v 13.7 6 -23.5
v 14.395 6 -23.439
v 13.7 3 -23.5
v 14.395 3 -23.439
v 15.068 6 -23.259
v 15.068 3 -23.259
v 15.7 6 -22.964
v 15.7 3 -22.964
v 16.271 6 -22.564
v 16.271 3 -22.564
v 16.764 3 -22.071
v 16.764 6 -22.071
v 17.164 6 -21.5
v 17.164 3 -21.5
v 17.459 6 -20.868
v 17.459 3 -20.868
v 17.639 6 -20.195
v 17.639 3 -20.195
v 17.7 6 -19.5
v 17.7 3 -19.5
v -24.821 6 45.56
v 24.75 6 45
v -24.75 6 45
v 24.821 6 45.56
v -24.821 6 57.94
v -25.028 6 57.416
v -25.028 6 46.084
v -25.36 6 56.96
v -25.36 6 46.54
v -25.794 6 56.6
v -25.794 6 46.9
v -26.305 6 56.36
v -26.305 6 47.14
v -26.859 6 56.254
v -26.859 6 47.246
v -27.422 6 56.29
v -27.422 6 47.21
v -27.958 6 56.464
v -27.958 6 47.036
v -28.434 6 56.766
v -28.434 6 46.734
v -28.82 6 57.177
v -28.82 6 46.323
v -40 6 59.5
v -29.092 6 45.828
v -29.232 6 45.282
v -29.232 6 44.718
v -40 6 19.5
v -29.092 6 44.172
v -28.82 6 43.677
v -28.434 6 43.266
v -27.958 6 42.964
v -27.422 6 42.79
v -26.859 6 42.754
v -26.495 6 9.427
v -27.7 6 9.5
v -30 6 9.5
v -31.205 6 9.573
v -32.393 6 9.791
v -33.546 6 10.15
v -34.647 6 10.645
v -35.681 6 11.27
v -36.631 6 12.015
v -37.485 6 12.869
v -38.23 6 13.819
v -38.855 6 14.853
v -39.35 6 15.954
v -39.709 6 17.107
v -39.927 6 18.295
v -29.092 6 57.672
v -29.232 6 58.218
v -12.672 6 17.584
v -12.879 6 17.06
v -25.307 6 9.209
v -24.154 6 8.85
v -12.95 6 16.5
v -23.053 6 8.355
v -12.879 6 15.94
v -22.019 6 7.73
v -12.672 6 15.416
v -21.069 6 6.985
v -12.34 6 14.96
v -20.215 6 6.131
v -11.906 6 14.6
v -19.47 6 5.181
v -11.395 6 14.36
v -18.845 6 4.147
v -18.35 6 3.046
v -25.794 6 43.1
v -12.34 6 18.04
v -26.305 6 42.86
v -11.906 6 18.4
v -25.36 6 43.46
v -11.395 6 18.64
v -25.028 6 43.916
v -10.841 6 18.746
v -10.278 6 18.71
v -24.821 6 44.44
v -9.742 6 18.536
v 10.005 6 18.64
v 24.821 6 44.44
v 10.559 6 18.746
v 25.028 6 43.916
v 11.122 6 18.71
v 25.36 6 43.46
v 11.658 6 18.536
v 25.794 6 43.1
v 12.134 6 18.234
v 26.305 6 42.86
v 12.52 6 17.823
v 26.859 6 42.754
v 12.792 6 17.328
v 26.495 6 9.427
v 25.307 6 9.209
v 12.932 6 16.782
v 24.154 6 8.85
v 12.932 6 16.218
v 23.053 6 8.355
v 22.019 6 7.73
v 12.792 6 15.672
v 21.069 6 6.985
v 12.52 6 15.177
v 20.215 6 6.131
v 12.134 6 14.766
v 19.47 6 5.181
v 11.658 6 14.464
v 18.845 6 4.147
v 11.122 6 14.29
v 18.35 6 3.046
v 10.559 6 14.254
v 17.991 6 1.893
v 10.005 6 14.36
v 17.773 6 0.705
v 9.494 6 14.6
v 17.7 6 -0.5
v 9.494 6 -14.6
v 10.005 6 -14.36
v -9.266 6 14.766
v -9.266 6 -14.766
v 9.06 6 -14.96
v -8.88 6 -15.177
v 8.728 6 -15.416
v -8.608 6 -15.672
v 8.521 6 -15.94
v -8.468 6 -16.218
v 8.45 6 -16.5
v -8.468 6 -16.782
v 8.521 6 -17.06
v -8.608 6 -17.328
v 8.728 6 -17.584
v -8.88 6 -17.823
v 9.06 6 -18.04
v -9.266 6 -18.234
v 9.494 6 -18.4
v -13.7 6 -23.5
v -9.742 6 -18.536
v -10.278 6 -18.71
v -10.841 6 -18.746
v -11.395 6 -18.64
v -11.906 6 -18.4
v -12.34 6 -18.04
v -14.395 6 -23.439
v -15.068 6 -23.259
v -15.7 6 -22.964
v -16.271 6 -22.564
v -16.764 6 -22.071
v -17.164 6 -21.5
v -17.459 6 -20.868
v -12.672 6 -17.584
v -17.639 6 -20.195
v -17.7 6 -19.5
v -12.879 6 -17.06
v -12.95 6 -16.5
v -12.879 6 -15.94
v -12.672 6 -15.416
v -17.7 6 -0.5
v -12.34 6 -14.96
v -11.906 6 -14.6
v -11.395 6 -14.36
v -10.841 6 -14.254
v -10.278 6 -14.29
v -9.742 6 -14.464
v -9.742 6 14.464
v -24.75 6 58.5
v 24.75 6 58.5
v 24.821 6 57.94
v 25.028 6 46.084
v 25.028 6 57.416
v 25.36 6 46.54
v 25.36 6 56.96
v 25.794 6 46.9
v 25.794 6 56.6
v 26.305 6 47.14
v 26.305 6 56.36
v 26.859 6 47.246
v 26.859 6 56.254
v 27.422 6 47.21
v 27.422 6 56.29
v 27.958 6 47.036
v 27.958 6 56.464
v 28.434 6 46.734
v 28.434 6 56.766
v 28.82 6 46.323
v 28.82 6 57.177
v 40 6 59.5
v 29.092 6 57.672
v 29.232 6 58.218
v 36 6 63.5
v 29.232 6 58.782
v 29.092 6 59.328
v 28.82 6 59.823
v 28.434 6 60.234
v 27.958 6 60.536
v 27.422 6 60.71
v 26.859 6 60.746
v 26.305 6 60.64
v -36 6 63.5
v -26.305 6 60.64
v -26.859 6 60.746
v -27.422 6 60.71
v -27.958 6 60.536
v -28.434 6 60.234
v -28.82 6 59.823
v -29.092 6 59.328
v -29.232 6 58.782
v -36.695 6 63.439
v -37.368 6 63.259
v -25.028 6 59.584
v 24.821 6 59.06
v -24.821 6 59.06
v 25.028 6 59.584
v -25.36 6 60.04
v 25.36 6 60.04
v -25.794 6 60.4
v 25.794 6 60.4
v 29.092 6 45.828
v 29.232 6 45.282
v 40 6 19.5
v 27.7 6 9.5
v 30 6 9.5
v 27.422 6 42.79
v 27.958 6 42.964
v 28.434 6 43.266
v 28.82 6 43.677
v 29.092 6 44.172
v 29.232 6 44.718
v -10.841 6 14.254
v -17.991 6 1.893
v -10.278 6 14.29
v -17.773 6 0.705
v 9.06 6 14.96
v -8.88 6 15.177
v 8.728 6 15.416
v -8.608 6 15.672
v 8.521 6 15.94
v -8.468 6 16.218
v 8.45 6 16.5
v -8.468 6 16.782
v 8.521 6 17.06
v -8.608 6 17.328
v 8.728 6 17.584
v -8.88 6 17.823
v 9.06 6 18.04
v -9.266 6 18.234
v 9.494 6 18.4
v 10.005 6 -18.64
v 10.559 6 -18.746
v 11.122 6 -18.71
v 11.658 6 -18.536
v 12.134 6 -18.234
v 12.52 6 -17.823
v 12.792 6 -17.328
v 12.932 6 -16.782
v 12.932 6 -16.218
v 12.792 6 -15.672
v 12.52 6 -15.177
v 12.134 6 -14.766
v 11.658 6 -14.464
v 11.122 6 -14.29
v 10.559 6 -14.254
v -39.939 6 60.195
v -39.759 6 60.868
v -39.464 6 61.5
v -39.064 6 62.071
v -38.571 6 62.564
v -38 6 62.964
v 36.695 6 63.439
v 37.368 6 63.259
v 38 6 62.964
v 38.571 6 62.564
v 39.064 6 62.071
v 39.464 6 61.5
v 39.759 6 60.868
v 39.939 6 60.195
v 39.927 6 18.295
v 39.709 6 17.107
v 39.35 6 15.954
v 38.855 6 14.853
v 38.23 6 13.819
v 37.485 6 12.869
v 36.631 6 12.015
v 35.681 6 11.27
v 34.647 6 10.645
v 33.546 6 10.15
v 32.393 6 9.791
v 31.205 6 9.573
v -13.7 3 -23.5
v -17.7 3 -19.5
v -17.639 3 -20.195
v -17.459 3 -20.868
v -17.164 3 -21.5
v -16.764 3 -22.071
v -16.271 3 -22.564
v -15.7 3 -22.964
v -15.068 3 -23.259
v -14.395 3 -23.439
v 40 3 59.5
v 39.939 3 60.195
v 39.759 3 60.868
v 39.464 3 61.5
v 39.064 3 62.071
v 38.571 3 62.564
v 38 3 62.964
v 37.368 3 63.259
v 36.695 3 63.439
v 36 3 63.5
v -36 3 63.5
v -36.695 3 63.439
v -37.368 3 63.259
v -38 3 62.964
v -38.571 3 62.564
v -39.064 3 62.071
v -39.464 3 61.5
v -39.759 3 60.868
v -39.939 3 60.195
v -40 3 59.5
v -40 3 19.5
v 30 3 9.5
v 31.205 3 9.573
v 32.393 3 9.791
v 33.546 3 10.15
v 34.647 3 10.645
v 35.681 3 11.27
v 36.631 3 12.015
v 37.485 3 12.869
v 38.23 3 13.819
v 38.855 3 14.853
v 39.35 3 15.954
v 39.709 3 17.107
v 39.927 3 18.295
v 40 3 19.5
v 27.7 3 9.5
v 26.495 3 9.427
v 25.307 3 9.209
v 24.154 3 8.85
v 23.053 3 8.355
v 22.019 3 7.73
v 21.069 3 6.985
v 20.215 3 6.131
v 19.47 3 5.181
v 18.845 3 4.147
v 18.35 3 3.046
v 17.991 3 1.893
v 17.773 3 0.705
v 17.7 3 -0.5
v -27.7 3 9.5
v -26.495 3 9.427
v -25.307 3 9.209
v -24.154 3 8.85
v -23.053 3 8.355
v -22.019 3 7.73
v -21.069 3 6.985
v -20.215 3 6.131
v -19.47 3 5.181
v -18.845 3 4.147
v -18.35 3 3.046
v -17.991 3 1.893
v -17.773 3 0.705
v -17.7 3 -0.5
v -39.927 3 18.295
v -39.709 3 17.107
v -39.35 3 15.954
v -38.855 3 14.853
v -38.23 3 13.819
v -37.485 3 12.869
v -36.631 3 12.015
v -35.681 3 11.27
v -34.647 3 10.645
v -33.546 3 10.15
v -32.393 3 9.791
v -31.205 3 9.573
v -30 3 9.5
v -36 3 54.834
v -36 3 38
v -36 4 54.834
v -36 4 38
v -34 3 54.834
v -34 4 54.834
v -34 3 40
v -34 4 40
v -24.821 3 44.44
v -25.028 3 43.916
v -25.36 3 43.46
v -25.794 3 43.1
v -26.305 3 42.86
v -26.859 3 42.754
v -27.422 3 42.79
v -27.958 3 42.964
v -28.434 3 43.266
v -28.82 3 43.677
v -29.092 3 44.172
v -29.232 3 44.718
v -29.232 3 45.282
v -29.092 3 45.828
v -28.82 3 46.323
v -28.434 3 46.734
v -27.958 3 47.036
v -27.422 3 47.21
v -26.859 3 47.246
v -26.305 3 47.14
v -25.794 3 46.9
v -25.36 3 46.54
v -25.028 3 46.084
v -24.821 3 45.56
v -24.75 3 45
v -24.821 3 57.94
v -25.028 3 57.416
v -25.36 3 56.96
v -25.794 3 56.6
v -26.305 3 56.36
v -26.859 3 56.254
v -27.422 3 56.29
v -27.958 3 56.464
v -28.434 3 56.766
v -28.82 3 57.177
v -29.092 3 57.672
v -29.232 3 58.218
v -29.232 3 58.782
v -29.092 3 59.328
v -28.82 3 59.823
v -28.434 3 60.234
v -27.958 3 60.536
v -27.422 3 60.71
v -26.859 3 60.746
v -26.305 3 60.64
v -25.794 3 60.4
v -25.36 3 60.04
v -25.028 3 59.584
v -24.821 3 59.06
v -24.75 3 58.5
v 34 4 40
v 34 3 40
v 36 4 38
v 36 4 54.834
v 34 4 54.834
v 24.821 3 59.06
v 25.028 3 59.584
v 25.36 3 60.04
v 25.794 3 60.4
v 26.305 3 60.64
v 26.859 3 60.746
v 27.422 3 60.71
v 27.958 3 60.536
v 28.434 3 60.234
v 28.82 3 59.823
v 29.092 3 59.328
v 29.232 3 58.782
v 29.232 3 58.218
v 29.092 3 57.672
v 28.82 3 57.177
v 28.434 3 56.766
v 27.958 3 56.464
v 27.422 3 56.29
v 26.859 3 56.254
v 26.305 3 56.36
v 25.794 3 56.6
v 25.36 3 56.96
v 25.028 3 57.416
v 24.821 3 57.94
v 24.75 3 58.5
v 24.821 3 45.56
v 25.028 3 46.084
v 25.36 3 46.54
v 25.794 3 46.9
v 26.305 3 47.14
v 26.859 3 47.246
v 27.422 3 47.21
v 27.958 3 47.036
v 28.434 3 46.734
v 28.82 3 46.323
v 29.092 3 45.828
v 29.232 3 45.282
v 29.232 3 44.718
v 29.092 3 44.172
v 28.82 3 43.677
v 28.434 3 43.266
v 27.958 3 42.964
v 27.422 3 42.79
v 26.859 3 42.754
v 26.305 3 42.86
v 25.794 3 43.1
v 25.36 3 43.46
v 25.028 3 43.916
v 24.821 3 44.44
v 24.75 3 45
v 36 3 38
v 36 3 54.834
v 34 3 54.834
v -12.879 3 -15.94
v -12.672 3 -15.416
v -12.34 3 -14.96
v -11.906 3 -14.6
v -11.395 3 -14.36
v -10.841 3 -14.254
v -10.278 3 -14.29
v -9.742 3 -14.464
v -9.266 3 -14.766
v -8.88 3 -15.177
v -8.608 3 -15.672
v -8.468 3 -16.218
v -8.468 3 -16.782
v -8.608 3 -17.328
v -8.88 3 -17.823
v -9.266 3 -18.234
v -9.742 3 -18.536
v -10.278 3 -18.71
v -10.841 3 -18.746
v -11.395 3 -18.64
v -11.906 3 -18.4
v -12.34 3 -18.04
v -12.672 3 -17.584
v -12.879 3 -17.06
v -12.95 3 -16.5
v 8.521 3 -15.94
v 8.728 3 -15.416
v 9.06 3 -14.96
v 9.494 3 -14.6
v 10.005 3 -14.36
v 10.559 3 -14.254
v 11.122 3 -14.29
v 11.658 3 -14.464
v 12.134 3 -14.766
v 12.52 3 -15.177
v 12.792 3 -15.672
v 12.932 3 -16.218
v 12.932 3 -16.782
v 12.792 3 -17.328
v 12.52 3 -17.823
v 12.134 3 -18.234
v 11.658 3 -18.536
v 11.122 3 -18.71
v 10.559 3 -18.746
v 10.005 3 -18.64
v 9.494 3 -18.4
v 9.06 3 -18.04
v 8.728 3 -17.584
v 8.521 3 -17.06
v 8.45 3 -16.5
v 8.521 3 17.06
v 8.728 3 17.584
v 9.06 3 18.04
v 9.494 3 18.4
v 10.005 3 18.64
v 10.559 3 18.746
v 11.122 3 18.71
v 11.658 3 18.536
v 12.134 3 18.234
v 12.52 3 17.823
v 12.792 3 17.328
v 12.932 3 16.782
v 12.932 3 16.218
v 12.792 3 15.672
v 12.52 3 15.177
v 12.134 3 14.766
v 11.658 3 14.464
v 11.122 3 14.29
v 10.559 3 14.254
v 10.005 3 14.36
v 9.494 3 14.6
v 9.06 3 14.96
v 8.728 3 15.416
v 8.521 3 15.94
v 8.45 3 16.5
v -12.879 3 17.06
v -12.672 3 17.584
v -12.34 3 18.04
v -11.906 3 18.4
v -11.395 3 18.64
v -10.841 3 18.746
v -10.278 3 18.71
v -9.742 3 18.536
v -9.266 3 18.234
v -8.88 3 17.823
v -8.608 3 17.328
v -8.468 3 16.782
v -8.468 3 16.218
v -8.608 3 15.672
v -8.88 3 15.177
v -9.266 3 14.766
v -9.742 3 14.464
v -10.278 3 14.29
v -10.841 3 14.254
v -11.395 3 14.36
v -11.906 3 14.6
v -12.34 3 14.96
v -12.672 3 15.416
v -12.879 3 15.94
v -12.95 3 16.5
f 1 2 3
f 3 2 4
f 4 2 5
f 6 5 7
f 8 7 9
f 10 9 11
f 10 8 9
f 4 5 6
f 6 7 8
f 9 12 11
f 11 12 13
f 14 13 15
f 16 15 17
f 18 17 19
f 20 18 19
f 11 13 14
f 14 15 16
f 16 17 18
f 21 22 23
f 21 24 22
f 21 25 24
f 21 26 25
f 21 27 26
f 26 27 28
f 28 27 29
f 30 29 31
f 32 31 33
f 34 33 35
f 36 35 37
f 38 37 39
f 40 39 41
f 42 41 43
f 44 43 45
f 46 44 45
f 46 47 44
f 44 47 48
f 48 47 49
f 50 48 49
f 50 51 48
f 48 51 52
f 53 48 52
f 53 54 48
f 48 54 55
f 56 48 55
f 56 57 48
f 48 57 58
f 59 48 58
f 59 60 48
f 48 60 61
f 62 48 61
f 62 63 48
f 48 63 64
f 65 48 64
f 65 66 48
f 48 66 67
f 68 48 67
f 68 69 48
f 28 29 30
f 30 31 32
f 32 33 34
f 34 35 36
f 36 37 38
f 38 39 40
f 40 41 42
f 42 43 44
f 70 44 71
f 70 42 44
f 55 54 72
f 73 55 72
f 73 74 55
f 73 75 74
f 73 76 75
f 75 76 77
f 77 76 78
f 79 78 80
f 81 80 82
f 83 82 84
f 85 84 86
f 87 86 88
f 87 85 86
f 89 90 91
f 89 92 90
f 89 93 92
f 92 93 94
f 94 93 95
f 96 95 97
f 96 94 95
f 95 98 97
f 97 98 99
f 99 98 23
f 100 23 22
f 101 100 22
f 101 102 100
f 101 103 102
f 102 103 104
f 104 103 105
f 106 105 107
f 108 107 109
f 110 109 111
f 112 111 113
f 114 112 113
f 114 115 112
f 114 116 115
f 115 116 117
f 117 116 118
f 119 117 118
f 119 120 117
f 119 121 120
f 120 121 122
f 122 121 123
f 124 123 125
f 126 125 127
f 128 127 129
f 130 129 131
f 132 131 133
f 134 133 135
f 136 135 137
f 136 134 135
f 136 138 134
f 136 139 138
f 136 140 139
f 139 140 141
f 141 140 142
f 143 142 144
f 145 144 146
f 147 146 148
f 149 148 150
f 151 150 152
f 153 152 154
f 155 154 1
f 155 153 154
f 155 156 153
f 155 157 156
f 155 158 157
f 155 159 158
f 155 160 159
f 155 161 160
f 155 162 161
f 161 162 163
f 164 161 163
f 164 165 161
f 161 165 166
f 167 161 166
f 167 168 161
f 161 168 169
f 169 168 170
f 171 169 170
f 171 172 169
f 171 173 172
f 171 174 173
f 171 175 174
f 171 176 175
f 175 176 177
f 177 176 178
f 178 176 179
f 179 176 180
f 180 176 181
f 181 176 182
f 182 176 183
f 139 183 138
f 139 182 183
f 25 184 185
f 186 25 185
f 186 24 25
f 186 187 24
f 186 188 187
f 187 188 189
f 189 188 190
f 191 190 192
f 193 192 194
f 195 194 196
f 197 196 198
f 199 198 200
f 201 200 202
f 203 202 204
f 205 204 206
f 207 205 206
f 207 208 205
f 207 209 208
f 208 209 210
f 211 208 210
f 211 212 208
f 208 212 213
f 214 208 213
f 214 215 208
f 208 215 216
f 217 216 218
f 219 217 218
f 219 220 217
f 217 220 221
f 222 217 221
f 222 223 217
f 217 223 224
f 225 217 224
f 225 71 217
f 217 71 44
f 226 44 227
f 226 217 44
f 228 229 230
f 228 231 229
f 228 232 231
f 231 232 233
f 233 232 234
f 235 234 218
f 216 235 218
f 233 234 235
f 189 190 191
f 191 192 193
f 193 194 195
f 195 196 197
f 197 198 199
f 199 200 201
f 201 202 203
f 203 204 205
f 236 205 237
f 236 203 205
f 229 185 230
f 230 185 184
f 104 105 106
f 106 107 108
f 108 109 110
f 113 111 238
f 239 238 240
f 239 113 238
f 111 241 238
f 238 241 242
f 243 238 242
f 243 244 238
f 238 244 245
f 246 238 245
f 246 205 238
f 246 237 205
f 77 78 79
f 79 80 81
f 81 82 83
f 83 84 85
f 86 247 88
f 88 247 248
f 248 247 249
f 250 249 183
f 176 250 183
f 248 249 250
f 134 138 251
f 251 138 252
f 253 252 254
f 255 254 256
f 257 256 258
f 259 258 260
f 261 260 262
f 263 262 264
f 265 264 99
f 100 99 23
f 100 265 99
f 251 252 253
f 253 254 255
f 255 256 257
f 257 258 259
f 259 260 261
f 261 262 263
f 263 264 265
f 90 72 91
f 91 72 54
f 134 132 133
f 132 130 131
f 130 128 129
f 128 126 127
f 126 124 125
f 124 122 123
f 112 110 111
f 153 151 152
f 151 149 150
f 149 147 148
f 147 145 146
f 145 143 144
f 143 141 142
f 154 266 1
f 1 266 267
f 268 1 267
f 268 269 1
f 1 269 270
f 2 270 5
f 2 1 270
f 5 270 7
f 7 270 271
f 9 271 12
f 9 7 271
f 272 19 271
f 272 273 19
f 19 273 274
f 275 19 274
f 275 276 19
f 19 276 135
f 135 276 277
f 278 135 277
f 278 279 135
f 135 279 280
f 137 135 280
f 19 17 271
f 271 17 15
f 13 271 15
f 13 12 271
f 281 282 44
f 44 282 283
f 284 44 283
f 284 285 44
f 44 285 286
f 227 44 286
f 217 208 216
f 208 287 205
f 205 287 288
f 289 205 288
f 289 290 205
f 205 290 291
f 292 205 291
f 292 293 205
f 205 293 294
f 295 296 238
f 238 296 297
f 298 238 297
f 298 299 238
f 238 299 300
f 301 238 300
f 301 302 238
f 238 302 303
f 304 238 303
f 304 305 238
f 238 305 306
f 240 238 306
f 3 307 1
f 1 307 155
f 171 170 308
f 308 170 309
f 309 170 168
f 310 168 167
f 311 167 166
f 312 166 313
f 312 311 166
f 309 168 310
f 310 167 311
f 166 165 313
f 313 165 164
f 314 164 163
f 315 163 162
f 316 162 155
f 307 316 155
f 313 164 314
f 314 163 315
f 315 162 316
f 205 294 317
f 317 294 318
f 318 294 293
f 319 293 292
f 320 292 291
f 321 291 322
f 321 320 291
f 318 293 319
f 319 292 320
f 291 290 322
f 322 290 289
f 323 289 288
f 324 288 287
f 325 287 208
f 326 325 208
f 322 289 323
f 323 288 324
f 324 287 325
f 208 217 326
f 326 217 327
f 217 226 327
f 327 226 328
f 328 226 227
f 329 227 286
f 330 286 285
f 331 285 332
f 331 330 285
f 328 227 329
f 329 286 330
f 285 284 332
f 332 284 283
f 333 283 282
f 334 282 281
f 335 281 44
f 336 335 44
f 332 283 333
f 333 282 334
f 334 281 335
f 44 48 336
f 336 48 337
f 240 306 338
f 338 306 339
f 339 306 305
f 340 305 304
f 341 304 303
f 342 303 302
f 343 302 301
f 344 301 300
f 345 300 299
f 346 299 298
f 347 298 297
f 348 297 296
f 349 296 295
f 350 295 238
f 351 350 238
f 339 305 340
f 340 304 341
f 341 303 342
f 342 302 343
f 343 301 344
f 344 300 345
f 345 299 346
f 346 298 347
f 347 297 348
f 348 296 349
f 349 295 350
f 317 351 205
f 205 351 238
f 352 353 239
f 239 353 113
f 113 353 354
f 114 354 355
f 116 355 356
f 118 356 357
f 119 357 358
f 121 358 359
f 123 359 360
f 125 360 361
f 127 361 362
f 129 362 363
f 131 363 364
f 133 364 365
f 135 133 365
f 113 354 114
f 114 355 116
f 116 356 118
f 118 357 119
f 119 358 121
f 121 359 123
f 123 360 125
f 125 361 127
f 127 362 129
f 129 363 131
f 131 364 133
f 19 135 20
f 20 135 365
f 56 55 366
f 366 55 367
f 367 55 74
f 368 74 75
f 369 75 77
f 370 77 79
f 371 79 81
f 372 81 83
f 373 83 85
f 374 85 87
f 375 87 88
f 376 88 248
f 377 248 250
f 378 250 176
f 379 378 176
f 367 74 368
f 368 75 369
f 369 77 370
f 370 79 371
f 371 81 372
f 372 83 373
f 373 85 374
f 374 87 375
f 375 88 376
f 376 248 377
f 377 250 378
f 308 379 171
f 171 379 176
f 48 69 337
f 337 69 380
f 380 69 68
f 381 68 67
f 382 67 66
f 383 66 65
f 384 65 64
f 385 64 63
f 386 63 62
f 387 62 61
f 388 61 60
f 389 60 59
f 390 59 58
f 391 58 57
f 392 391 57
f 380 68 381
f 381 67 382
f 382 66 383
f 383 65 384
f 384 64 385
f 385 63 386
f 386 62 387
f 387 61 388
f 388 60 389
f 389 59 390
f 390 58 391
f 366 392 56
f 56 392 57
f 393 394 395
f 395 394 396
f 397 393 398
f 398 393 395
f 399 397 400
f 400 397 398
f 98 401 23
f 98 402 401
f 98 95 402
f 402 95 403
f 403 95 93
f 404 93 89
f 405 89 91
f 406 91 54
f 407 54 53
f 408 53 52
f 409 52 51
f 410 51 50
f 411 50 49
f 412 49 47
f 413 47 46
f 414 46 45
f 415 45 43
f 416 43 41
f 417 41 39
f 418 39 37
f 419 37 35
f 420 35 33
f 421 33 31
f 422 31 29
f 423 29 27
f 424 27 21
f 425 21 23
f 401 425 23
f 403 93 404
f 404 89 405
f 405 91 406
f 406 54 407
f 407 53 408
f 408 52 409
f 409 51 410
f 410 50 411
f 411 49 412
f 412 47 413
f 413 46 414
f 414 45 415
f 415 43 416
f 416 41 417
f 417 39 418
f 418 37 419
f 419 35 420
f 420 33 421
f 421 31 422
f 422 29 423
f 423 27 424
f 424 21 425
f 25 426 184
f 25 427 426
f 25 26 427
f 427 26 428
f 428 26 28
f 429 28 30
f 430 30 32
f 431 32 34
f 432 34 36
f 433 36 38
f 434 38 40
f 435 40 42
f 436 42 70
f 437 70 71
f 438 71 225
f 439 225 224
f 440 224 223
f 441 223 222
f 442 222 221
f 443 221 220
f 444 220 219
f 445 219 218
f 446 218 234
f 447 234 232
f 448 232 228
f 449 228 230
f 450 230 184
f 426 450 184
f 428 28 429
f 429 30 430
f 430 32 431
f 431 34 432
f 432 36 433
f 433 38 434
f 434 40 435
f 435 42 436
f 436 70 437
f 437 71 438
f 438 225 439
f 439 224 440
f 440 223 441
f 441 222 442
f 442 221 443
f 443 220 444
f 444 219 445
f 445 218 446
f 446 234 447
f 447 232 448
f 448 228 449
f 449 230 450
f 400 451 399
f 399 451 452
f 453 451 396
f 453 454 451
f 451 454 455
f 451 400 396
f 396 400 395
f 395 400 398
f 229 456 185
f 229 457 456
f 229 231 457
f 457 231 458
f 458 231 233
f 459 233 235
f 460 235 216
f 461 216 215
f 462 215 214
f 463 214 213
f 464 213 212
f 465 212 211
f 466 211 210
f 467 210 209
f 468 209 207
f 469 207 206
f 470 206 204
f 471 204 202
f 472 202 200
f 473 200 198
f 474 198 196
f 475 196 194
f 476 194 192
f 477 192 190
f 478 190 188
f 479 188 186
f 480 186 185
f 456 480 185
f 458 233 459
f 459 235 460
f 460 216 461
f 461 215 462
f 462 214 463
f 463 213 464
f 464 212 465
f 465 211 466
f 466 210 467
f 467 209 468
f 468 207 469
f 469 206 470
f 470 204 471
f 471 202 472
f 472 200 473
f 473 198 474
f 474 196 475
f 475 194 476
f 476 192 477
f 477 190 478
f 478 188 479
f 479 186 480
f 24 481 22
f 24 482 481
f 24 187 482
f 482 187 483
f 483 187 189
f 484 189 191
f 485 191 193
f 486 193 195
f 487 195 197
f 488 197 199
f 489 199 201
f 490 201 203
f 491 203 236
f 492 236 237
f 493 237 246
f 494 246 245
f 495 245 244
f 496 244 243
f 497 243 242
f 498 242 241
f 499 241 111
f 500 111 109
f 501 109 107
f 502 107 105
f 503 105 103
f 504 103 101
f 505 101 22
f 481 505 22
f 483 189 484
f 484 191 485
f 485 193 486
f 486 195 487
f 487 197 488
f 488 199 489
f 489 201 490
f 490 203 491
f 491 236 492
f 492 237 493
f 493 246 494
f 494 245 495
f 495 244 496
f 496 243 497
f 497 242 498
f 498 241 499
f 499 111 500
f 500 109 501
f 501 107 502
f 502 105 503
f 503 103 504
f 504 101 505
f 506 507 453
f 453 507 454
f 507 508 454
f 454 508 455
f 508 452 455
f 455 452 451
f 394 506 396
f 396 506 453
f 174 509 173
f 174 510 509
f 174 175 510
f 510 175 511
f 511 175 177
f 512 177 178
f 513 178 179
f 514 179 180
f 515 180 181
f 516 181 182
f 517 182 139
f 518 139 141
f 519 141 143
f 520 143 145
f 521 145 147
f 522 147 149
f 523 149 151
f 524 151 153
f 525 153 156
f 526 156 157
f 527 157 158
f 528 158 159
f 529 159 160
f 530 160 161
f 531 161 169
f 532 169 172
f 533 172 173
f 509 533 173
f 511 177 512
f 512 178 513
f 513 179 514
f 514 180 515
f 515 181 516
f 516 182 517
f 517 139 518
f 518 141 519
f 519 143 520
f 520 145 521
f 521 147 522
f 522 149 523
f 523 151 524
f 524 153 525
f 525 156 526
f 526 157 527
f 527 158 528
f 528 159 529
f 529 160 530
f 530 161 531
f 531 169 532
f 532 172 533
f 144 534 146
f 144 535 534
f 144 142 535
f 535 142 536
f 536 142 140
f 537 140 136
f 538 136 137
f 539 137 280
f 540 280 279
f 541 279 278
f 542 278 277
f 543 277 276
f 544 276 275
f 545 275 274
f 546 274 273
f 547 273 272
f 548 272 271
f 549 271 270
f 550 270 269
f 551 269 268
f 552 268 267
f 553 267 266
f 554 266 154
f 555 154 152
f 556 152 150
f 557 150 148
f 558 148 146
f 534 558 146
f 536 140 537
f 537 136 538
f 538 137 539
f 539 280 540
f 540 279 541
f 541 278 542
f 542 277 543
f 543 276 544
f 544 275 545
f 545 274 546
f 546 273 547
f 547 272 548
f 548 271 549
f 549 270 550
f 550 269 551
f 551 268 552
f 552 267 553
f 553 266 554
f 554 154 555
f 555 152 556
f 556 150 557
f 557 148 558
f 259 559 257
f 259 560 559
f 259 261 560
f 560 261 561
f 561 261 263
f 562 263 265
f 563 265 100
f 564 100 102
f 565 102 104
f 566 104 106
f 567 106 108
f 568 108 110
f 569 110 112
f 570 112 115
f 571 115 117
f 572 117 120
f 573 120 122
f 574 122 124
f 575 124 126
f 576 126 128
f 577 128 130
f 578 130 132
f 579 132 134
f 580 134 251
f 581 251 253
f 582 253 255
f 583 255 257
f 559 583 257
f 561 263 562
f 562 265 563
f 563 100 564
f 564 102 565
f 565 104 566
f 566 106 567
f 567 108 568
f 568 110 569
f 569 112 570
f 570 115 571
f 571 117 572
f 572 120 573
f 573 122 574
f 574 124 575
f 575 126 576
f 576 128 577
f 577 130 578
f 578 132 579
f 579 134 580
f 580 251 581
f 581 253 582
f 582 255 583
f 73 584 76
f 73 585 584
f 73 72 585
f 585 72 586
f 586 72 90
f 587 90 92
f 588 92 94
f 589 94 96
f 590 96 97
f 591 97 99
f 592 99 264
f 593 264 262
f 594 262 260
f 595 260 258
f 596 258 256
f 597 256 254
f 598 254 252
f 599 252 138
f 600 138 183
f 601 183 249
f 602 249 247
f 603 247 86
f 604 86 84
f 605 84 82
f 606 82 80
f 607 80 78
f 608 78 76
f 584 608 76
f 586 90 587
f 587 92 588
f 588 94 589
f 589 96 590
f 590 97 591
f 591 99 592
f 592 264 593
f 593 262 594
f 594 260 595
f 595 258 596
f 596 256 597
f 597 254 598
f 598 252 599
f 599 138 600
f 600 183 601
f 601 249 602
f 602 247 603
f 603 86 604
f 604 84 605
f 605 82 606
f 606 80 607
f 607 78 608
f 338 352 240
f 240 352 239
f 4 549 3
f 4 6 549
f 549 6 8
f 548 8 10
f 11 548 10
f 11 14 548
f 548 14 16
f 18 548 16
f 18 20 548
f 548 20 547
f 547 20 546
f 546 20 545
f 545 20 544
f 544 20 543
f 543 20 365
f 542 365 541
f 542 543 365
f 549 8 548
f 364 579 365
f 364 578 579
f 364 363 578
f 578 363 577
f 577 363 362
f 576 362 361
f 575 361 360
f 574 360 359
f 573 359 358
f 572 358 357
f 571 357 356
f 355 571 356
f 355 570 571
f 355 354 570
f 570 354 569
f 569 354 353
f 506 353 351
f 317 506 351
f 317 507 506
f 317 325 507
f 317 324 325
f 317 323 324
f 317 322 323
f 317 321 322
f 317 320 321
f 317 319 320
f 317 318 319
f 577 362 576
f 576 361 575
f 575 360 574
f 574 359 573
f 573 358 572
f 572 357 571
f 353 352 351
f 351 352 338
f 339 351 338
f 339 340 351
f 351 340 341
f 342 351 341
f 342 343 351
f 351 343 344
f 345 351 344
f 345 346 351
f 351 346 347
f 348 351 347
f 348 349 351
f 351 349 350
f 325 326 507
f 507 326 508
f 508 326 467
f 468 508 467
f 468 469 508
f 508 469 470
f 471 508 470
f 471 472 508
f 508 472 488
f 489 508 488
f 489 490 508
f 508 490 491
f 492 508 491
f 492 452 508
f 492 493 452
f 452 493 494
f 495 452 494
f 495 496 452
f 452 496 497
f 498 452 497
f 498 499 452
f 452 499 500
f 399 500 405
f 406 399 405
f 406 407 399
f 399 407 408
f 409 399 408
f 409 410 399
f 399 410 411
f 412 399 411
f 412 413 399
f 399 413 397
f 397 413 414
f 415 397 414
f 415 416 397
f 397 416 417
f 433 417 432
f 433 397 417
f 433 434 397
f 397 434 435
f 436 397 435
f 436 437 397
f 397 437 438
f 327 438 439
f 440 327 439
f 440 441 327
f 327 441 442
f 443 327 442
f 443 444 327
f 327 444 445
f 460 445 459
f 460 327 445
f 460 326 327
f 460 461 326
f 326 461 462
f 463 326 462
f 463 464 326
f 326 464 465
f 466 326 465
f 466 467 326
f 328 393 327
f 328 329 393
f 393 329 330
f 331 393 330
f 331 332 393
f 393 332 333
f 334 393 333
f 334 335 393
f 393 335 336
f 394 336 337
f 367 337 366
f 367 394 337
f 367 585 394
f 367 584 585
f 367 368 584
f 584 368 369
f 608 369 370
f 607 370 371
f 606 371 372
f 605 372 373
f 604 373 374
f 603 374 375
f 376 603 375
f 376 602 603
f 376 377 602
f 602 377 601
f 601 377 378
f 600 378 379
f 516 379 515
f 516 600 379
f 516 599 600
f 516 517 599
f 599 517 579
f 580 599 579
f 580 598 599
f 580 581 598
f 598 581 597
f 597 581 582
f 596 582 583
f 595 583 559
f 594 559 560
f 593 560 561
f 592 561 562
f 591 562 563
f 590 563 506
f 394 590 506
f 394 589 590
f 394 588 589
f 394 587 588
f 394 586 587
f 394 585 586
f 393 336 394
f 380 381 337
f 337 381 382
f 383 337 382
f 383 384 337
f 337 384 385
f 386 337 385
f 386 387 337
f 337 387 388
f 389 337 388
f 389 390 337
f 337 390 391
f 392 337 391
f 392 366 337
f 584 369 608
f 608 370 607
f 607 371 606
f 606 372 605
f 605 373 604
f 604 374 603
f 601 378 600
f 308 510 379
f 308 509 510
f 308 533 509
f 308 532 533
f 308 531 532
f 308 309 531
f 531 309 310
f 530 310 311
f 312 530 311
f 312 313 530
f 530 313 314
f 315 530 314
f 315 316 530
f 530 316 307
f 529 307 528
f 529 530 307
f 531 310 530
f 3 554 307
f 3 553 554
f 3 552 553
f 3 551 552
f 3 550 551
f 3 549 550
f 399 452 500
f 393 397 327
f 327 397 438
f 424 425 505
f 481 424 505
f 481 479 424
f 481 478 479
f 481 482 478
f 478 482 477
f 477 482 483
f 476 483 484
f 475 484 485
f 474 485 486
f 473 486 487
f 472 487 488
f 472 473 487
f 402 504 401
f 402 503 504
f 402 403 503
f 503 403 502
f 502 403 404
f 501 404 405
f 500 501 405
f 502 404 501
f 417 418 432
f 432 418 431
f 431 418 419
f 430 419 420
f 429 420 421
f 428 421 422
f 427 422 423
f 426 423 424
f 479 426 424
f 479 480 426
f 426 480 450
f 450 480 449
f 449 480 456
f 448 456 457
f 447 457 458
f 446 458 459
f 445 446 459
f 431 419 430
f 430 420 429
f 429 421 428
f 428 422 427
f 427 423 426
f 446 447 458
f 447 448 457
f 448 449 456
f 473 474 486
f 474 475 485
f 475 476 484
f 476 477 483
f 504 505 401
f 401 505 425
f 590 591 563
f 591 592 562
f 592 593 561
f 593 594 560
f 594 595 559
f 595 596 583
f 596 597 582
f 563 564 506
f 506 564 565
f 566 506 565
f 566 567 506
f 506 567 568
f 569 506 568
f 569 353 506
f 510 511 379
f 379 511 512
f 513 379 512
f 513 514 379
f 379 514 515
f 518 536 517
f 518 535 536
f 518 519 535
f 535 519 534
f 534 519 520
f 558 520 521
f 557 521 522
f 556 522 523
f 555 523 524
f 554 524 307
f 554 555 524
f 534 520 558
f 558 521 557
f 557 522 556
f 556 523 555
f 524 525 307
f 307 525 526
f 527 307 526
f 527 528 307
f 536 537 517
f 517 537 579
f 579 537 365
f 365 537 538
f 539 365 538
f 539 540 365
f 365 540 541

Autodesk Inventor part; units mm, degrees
ref_plane "YZ Plane" through (0, 0, 0) normal (1, 0, 0) x (0, 1, 0)
ref_plane "XY Plane" through (0, 0, 0) normal (0, 0, 1) x (1, 0, 0)
sketch "Sketch1" plane through (0, 0, 0) normal (0, 1, 0) x (-1, 0, 0)
  line L0 (-51.65, 23.5) -> (51.65, 23.5)
  line L1 (54.65, 20.5) -> (54.65, -20.5)
  line L2 (51.65, -23.5) -> (-51.65, -23.5)
  line L3 (-54.65, -20.5) -> (-54.65, 20.5)
  circle A0 centre (-47.65, 16.5) radius 2.25
  circle A1 centre (47.65, 16.5) radius 2.25
  circle A2 centre (-47.65, 16.5) radius 26.75 construction
  circle A3 centre (-10.7, 16.5) radius 2.25
  circle A4 centre (-10.7, 16.5) radius 11.2 construction
  line L4 (-21.9, 16.5) -> (-21.9, 6.8604)
  line L5 (-20.9, 16.5) -> (-20.9, 6.8604)
  circle A5 centre (10.7, 16.5) radius 2.25
  circle A6 centre (10.7, 16.5) radius 11.2 construction
  line L6 (-0.5, 16.5) -> (-0.5, 5.694)
  line L7 (0.5, 16.5) -> (0.5, 5.694)
  circle A7 centre (47.65, 16.5) radius 26.75 construction
  line L8 (20.9, 16.5) -> (20.9, 5.8426)
  line L9 (21.9, 16.5) -> (21.9, 5.8426)
  arc A8 (-51.65, 23.5) -> (-54.65, 20.5) centre (-51.65, 20.5) ccw
  arc A9 (-54.65, -20.5) -> (-51.65, -23.5) centre (-51.65, -20.5) ccw
  arc A10 (54.65, 20.5) -> (51.65, 23.5) centre (51.65, 20.5) ccw
  arc A11 (51.65, -23.5) -> (54.65, -20.5) centre (51.65, -20.5) ccw
  line L10 (-84.9483, 16.5) -> (77.5332, 16.5) construction
  line L11 (-54.65, 0) -> (54.65, 0)
  line L12 (10.7, 30.5) -> (10.7, -33.5) construction
  circle A12 centre (10.7, -16.5) radius 2.25
  line L13 (5, -8.5) -> (18, -8.5) construction
  line L14 (3.7, -4.5) -> (3.7, -33.5) construction
  line L15 (-6.3, -4.5) -> (-6.3, -33.5) construction
  line L16 (-1.3, -33.5) -> (-1.3, -4.5) construction
  circle A13 centre (-1.3, -38.9) radius 2.25
  circle A14 centre (-1.3, -8.5) radius 2.25
  line L17 (-17.7373, -23.5) -> (14.2274, -23.5)
  line L18 (14.2274, -23.5) -> (14.2274, -45.3565)
  line L19 (14.2274, -45.3565) -> (-17.7373, -45.3565)
  line L20 (-17.7373, -45.3565) -> (-17.7373, -23.5)
  line L21 (-40.65, 5) -> (-30.65, 5)
  line L22 (-30.65, 5) -> (-30.65, -5)
  line L23 (-30.65, -5) -> (-40.65, -5)
  line L24 (-40.65, -5) -> (-40.65, 5)
  line L25 (-42.65, -7) -> (-28.65, -7)
  line L26 (-28.65, -7) -> (-28.65, 7)
  line L27 (-28.65, 7) -> (-42.65, 7)
  line L28 (-42.65, 7) -> (-42.65, -7)
  point P0 (0, 0)
  point P1 (-54.65, 23.5)
  point P2 (-54.65, -23.5)
  point P3 (0, 23.5)
  point P4 (-35.65, 5)
  point P5 (-30.65, 0)
  dimension "d5" = 53.5
  dimension "d12" = 53.5
  dimension "d1" = 4.5
  dimension "d2" = 7
  dimension "d3" = 4.5
  dimension "d4" = 7
  dimension "d6" = 4.5
  dimension "d7" = 22.4
  dimension "d8" = 1
  dimension "d9" = 4.5
  dimension "d10" = 22.4
  dimension "d11" = 1
  dimension "d13" = 1
  dimension "d14" = 3
  dimension "d23" = 16.5
  dimension "d24" = 7
  dimension "d27" = 8
  dimension "d28" = 7
  dimension "d29" = 10
  dimension "d30" = 5
  dimension "d31" = 4.5
  dimension "d32" = 4.5
  dimension "d33" = 30.4
  dimension "d38" = 0
  dimension "d40" = 10
  dimension "d41" = 10
  dimension "d43" = 2
  dimension "d47" = 12
ref_plane "Work Plane1" through (0, 3, 0) normal (0, 1, 0) x (-1, 0, 0)
sketch "Sketch3" plane through (0, 3, 0) normal (0, 1, 0) x (-1, 0, 0)
  circle A0 centre (-10.7, -16.5) radius 2.25
  circle A1 centre (10.7, -16.5) radius 2.25
  circle A2 centre (10.7, 16.5) radius 2.25
  circle A3 centre (-10.7, 16.5) radius 2.25
  line L0 (-17.7, -23.5) -> (17.7, -23.5)
  line L1 (17.7, 23.5) -> (-17.7, 23.5)
  line L2 (-17.7, 23.5) -> (-17.7, -23.5)
  line L3 (17.7, 23.5) -> (17.7, -23.5)
  line L4 (-40, 23.5) -> (40, 23.5)
  line L5 (40, 23.5) -> (40, 63.5)
  line L6 (40, 63.5) -> (-40, 63.5)
  line L7 (-40, 63.5) -> (-40, 23.5)
  line L8 (-20, 63.5) -> (20, 63.5)
  line L9 (20, 63.5) -> (20, 40)
  line L10 (20, 40) -> (-20, 40)
  line L11 (-20, 40) -> (-20, 63.5)
  line L12 (0, 0) -> (0, -39.7707) construction
  line L13 (0, 40) -> (0, 63.5) construction
  line L14 (-40, 23.5) -> (-40, 9.5)
  line L15 (-40, 9.5) -> (40, 9.5)
  line L16 (40, 9.5) -> (40, 23.5)
  circle A4 centre (-27, 58.5) radius 2.25
  line L17 (-20, 40) -> (-34, 40)
  line L18 (-34, 40) -> (-34, 63.5)
  line L19 (-34, 63.5) -> (-20, 63.5)
  line L20 (-20, 63.5) -> (-20, 40)
  circle A5 centre (-27, 45) radius 2.25
  line L21 (-20, 38) -> (-34, 38)
  line L22 (-36, 38) -> (-36, 63.5)
  line L23 (-20, 38) -> (-20, 40)
  line L24 (-36, 63.5) -> (-34, 63.5)
  line L25 (20, 40) -> (20, 38)
  line L26 (-34, 38) -> (-36, 38)
  line L27 (-20, 38) -> (20, 38)
  line L28 (-36, 54.8338) -> (-34, 54.8338)
  point P0 (0, 63.5)
  point P1 (0, 23.5)
  point P2 (-27, 63.5)
  dimension "d67" = 7
  dimension "d73" = 7
  dimension "d74" = 7
  dimension "d84" = 7
  dimension "d86" = 7
  dimension "d87" = 40
  dimension "d88" = 80
  dimension "d91" = 40
  dimension "d92" = 23.5
  dimension "d96" = 4.5
  dimension "d97" = 7
  dimension "d98" = 4.5
  dimension "d99" = 7
  dimension "d100" = 5
  dimension "d101" = 4.5
  dimension "d102" = 7
  dimension "d103" = 5
  dimension "d104" = 2
extrude "Extrusion8" add sketch "Sketch3" along normal blind 3 contours L2 L15 L3 L0 | L15 L14 L4 L2 | L2 L1 L3 L15 | L3 L4 L16 L15 | L4 L7 L6 L22 L26 L21 L27 L25 L9 L5 L1 | L6 L18 L28 L22 | L9 L10 L11 L6 | L6 L11 L17 L18 | L28 L18 L17 L23 L21 L26 L22 | L25 L27 L23 L10 | A4 | A5
extrude "Extrusion9" cut sketch "Sketch3" along normal blind 1 contours L28 L18 L17 L23 L21 L26 L22 | L25 L27 L23 L10
extrude "Extrusion10" cut sketch "Sketch3" along normal blind 10 contours A4 | A5
mirror "Mirror4" about plane through (0, 0, 0) normal (1, 0, 0) of "Extrusion9", "Extrusion10"
fillet "Fillet3" radius 10 4 edges at (-40, 4.5, 9.5) (-17.7, 4.5, 9.5) (17.7, 4.5, 9.5) (40, 4.5, 9.5)
fillet "Fillet4" radius 4 4 edges at (-40, 4.5, 63.5) (40, 4.5, 63.5) (-17.7, 4.5, -23.5) (17.7, 4.5, -23.5)
properties part number "OuterBar"
